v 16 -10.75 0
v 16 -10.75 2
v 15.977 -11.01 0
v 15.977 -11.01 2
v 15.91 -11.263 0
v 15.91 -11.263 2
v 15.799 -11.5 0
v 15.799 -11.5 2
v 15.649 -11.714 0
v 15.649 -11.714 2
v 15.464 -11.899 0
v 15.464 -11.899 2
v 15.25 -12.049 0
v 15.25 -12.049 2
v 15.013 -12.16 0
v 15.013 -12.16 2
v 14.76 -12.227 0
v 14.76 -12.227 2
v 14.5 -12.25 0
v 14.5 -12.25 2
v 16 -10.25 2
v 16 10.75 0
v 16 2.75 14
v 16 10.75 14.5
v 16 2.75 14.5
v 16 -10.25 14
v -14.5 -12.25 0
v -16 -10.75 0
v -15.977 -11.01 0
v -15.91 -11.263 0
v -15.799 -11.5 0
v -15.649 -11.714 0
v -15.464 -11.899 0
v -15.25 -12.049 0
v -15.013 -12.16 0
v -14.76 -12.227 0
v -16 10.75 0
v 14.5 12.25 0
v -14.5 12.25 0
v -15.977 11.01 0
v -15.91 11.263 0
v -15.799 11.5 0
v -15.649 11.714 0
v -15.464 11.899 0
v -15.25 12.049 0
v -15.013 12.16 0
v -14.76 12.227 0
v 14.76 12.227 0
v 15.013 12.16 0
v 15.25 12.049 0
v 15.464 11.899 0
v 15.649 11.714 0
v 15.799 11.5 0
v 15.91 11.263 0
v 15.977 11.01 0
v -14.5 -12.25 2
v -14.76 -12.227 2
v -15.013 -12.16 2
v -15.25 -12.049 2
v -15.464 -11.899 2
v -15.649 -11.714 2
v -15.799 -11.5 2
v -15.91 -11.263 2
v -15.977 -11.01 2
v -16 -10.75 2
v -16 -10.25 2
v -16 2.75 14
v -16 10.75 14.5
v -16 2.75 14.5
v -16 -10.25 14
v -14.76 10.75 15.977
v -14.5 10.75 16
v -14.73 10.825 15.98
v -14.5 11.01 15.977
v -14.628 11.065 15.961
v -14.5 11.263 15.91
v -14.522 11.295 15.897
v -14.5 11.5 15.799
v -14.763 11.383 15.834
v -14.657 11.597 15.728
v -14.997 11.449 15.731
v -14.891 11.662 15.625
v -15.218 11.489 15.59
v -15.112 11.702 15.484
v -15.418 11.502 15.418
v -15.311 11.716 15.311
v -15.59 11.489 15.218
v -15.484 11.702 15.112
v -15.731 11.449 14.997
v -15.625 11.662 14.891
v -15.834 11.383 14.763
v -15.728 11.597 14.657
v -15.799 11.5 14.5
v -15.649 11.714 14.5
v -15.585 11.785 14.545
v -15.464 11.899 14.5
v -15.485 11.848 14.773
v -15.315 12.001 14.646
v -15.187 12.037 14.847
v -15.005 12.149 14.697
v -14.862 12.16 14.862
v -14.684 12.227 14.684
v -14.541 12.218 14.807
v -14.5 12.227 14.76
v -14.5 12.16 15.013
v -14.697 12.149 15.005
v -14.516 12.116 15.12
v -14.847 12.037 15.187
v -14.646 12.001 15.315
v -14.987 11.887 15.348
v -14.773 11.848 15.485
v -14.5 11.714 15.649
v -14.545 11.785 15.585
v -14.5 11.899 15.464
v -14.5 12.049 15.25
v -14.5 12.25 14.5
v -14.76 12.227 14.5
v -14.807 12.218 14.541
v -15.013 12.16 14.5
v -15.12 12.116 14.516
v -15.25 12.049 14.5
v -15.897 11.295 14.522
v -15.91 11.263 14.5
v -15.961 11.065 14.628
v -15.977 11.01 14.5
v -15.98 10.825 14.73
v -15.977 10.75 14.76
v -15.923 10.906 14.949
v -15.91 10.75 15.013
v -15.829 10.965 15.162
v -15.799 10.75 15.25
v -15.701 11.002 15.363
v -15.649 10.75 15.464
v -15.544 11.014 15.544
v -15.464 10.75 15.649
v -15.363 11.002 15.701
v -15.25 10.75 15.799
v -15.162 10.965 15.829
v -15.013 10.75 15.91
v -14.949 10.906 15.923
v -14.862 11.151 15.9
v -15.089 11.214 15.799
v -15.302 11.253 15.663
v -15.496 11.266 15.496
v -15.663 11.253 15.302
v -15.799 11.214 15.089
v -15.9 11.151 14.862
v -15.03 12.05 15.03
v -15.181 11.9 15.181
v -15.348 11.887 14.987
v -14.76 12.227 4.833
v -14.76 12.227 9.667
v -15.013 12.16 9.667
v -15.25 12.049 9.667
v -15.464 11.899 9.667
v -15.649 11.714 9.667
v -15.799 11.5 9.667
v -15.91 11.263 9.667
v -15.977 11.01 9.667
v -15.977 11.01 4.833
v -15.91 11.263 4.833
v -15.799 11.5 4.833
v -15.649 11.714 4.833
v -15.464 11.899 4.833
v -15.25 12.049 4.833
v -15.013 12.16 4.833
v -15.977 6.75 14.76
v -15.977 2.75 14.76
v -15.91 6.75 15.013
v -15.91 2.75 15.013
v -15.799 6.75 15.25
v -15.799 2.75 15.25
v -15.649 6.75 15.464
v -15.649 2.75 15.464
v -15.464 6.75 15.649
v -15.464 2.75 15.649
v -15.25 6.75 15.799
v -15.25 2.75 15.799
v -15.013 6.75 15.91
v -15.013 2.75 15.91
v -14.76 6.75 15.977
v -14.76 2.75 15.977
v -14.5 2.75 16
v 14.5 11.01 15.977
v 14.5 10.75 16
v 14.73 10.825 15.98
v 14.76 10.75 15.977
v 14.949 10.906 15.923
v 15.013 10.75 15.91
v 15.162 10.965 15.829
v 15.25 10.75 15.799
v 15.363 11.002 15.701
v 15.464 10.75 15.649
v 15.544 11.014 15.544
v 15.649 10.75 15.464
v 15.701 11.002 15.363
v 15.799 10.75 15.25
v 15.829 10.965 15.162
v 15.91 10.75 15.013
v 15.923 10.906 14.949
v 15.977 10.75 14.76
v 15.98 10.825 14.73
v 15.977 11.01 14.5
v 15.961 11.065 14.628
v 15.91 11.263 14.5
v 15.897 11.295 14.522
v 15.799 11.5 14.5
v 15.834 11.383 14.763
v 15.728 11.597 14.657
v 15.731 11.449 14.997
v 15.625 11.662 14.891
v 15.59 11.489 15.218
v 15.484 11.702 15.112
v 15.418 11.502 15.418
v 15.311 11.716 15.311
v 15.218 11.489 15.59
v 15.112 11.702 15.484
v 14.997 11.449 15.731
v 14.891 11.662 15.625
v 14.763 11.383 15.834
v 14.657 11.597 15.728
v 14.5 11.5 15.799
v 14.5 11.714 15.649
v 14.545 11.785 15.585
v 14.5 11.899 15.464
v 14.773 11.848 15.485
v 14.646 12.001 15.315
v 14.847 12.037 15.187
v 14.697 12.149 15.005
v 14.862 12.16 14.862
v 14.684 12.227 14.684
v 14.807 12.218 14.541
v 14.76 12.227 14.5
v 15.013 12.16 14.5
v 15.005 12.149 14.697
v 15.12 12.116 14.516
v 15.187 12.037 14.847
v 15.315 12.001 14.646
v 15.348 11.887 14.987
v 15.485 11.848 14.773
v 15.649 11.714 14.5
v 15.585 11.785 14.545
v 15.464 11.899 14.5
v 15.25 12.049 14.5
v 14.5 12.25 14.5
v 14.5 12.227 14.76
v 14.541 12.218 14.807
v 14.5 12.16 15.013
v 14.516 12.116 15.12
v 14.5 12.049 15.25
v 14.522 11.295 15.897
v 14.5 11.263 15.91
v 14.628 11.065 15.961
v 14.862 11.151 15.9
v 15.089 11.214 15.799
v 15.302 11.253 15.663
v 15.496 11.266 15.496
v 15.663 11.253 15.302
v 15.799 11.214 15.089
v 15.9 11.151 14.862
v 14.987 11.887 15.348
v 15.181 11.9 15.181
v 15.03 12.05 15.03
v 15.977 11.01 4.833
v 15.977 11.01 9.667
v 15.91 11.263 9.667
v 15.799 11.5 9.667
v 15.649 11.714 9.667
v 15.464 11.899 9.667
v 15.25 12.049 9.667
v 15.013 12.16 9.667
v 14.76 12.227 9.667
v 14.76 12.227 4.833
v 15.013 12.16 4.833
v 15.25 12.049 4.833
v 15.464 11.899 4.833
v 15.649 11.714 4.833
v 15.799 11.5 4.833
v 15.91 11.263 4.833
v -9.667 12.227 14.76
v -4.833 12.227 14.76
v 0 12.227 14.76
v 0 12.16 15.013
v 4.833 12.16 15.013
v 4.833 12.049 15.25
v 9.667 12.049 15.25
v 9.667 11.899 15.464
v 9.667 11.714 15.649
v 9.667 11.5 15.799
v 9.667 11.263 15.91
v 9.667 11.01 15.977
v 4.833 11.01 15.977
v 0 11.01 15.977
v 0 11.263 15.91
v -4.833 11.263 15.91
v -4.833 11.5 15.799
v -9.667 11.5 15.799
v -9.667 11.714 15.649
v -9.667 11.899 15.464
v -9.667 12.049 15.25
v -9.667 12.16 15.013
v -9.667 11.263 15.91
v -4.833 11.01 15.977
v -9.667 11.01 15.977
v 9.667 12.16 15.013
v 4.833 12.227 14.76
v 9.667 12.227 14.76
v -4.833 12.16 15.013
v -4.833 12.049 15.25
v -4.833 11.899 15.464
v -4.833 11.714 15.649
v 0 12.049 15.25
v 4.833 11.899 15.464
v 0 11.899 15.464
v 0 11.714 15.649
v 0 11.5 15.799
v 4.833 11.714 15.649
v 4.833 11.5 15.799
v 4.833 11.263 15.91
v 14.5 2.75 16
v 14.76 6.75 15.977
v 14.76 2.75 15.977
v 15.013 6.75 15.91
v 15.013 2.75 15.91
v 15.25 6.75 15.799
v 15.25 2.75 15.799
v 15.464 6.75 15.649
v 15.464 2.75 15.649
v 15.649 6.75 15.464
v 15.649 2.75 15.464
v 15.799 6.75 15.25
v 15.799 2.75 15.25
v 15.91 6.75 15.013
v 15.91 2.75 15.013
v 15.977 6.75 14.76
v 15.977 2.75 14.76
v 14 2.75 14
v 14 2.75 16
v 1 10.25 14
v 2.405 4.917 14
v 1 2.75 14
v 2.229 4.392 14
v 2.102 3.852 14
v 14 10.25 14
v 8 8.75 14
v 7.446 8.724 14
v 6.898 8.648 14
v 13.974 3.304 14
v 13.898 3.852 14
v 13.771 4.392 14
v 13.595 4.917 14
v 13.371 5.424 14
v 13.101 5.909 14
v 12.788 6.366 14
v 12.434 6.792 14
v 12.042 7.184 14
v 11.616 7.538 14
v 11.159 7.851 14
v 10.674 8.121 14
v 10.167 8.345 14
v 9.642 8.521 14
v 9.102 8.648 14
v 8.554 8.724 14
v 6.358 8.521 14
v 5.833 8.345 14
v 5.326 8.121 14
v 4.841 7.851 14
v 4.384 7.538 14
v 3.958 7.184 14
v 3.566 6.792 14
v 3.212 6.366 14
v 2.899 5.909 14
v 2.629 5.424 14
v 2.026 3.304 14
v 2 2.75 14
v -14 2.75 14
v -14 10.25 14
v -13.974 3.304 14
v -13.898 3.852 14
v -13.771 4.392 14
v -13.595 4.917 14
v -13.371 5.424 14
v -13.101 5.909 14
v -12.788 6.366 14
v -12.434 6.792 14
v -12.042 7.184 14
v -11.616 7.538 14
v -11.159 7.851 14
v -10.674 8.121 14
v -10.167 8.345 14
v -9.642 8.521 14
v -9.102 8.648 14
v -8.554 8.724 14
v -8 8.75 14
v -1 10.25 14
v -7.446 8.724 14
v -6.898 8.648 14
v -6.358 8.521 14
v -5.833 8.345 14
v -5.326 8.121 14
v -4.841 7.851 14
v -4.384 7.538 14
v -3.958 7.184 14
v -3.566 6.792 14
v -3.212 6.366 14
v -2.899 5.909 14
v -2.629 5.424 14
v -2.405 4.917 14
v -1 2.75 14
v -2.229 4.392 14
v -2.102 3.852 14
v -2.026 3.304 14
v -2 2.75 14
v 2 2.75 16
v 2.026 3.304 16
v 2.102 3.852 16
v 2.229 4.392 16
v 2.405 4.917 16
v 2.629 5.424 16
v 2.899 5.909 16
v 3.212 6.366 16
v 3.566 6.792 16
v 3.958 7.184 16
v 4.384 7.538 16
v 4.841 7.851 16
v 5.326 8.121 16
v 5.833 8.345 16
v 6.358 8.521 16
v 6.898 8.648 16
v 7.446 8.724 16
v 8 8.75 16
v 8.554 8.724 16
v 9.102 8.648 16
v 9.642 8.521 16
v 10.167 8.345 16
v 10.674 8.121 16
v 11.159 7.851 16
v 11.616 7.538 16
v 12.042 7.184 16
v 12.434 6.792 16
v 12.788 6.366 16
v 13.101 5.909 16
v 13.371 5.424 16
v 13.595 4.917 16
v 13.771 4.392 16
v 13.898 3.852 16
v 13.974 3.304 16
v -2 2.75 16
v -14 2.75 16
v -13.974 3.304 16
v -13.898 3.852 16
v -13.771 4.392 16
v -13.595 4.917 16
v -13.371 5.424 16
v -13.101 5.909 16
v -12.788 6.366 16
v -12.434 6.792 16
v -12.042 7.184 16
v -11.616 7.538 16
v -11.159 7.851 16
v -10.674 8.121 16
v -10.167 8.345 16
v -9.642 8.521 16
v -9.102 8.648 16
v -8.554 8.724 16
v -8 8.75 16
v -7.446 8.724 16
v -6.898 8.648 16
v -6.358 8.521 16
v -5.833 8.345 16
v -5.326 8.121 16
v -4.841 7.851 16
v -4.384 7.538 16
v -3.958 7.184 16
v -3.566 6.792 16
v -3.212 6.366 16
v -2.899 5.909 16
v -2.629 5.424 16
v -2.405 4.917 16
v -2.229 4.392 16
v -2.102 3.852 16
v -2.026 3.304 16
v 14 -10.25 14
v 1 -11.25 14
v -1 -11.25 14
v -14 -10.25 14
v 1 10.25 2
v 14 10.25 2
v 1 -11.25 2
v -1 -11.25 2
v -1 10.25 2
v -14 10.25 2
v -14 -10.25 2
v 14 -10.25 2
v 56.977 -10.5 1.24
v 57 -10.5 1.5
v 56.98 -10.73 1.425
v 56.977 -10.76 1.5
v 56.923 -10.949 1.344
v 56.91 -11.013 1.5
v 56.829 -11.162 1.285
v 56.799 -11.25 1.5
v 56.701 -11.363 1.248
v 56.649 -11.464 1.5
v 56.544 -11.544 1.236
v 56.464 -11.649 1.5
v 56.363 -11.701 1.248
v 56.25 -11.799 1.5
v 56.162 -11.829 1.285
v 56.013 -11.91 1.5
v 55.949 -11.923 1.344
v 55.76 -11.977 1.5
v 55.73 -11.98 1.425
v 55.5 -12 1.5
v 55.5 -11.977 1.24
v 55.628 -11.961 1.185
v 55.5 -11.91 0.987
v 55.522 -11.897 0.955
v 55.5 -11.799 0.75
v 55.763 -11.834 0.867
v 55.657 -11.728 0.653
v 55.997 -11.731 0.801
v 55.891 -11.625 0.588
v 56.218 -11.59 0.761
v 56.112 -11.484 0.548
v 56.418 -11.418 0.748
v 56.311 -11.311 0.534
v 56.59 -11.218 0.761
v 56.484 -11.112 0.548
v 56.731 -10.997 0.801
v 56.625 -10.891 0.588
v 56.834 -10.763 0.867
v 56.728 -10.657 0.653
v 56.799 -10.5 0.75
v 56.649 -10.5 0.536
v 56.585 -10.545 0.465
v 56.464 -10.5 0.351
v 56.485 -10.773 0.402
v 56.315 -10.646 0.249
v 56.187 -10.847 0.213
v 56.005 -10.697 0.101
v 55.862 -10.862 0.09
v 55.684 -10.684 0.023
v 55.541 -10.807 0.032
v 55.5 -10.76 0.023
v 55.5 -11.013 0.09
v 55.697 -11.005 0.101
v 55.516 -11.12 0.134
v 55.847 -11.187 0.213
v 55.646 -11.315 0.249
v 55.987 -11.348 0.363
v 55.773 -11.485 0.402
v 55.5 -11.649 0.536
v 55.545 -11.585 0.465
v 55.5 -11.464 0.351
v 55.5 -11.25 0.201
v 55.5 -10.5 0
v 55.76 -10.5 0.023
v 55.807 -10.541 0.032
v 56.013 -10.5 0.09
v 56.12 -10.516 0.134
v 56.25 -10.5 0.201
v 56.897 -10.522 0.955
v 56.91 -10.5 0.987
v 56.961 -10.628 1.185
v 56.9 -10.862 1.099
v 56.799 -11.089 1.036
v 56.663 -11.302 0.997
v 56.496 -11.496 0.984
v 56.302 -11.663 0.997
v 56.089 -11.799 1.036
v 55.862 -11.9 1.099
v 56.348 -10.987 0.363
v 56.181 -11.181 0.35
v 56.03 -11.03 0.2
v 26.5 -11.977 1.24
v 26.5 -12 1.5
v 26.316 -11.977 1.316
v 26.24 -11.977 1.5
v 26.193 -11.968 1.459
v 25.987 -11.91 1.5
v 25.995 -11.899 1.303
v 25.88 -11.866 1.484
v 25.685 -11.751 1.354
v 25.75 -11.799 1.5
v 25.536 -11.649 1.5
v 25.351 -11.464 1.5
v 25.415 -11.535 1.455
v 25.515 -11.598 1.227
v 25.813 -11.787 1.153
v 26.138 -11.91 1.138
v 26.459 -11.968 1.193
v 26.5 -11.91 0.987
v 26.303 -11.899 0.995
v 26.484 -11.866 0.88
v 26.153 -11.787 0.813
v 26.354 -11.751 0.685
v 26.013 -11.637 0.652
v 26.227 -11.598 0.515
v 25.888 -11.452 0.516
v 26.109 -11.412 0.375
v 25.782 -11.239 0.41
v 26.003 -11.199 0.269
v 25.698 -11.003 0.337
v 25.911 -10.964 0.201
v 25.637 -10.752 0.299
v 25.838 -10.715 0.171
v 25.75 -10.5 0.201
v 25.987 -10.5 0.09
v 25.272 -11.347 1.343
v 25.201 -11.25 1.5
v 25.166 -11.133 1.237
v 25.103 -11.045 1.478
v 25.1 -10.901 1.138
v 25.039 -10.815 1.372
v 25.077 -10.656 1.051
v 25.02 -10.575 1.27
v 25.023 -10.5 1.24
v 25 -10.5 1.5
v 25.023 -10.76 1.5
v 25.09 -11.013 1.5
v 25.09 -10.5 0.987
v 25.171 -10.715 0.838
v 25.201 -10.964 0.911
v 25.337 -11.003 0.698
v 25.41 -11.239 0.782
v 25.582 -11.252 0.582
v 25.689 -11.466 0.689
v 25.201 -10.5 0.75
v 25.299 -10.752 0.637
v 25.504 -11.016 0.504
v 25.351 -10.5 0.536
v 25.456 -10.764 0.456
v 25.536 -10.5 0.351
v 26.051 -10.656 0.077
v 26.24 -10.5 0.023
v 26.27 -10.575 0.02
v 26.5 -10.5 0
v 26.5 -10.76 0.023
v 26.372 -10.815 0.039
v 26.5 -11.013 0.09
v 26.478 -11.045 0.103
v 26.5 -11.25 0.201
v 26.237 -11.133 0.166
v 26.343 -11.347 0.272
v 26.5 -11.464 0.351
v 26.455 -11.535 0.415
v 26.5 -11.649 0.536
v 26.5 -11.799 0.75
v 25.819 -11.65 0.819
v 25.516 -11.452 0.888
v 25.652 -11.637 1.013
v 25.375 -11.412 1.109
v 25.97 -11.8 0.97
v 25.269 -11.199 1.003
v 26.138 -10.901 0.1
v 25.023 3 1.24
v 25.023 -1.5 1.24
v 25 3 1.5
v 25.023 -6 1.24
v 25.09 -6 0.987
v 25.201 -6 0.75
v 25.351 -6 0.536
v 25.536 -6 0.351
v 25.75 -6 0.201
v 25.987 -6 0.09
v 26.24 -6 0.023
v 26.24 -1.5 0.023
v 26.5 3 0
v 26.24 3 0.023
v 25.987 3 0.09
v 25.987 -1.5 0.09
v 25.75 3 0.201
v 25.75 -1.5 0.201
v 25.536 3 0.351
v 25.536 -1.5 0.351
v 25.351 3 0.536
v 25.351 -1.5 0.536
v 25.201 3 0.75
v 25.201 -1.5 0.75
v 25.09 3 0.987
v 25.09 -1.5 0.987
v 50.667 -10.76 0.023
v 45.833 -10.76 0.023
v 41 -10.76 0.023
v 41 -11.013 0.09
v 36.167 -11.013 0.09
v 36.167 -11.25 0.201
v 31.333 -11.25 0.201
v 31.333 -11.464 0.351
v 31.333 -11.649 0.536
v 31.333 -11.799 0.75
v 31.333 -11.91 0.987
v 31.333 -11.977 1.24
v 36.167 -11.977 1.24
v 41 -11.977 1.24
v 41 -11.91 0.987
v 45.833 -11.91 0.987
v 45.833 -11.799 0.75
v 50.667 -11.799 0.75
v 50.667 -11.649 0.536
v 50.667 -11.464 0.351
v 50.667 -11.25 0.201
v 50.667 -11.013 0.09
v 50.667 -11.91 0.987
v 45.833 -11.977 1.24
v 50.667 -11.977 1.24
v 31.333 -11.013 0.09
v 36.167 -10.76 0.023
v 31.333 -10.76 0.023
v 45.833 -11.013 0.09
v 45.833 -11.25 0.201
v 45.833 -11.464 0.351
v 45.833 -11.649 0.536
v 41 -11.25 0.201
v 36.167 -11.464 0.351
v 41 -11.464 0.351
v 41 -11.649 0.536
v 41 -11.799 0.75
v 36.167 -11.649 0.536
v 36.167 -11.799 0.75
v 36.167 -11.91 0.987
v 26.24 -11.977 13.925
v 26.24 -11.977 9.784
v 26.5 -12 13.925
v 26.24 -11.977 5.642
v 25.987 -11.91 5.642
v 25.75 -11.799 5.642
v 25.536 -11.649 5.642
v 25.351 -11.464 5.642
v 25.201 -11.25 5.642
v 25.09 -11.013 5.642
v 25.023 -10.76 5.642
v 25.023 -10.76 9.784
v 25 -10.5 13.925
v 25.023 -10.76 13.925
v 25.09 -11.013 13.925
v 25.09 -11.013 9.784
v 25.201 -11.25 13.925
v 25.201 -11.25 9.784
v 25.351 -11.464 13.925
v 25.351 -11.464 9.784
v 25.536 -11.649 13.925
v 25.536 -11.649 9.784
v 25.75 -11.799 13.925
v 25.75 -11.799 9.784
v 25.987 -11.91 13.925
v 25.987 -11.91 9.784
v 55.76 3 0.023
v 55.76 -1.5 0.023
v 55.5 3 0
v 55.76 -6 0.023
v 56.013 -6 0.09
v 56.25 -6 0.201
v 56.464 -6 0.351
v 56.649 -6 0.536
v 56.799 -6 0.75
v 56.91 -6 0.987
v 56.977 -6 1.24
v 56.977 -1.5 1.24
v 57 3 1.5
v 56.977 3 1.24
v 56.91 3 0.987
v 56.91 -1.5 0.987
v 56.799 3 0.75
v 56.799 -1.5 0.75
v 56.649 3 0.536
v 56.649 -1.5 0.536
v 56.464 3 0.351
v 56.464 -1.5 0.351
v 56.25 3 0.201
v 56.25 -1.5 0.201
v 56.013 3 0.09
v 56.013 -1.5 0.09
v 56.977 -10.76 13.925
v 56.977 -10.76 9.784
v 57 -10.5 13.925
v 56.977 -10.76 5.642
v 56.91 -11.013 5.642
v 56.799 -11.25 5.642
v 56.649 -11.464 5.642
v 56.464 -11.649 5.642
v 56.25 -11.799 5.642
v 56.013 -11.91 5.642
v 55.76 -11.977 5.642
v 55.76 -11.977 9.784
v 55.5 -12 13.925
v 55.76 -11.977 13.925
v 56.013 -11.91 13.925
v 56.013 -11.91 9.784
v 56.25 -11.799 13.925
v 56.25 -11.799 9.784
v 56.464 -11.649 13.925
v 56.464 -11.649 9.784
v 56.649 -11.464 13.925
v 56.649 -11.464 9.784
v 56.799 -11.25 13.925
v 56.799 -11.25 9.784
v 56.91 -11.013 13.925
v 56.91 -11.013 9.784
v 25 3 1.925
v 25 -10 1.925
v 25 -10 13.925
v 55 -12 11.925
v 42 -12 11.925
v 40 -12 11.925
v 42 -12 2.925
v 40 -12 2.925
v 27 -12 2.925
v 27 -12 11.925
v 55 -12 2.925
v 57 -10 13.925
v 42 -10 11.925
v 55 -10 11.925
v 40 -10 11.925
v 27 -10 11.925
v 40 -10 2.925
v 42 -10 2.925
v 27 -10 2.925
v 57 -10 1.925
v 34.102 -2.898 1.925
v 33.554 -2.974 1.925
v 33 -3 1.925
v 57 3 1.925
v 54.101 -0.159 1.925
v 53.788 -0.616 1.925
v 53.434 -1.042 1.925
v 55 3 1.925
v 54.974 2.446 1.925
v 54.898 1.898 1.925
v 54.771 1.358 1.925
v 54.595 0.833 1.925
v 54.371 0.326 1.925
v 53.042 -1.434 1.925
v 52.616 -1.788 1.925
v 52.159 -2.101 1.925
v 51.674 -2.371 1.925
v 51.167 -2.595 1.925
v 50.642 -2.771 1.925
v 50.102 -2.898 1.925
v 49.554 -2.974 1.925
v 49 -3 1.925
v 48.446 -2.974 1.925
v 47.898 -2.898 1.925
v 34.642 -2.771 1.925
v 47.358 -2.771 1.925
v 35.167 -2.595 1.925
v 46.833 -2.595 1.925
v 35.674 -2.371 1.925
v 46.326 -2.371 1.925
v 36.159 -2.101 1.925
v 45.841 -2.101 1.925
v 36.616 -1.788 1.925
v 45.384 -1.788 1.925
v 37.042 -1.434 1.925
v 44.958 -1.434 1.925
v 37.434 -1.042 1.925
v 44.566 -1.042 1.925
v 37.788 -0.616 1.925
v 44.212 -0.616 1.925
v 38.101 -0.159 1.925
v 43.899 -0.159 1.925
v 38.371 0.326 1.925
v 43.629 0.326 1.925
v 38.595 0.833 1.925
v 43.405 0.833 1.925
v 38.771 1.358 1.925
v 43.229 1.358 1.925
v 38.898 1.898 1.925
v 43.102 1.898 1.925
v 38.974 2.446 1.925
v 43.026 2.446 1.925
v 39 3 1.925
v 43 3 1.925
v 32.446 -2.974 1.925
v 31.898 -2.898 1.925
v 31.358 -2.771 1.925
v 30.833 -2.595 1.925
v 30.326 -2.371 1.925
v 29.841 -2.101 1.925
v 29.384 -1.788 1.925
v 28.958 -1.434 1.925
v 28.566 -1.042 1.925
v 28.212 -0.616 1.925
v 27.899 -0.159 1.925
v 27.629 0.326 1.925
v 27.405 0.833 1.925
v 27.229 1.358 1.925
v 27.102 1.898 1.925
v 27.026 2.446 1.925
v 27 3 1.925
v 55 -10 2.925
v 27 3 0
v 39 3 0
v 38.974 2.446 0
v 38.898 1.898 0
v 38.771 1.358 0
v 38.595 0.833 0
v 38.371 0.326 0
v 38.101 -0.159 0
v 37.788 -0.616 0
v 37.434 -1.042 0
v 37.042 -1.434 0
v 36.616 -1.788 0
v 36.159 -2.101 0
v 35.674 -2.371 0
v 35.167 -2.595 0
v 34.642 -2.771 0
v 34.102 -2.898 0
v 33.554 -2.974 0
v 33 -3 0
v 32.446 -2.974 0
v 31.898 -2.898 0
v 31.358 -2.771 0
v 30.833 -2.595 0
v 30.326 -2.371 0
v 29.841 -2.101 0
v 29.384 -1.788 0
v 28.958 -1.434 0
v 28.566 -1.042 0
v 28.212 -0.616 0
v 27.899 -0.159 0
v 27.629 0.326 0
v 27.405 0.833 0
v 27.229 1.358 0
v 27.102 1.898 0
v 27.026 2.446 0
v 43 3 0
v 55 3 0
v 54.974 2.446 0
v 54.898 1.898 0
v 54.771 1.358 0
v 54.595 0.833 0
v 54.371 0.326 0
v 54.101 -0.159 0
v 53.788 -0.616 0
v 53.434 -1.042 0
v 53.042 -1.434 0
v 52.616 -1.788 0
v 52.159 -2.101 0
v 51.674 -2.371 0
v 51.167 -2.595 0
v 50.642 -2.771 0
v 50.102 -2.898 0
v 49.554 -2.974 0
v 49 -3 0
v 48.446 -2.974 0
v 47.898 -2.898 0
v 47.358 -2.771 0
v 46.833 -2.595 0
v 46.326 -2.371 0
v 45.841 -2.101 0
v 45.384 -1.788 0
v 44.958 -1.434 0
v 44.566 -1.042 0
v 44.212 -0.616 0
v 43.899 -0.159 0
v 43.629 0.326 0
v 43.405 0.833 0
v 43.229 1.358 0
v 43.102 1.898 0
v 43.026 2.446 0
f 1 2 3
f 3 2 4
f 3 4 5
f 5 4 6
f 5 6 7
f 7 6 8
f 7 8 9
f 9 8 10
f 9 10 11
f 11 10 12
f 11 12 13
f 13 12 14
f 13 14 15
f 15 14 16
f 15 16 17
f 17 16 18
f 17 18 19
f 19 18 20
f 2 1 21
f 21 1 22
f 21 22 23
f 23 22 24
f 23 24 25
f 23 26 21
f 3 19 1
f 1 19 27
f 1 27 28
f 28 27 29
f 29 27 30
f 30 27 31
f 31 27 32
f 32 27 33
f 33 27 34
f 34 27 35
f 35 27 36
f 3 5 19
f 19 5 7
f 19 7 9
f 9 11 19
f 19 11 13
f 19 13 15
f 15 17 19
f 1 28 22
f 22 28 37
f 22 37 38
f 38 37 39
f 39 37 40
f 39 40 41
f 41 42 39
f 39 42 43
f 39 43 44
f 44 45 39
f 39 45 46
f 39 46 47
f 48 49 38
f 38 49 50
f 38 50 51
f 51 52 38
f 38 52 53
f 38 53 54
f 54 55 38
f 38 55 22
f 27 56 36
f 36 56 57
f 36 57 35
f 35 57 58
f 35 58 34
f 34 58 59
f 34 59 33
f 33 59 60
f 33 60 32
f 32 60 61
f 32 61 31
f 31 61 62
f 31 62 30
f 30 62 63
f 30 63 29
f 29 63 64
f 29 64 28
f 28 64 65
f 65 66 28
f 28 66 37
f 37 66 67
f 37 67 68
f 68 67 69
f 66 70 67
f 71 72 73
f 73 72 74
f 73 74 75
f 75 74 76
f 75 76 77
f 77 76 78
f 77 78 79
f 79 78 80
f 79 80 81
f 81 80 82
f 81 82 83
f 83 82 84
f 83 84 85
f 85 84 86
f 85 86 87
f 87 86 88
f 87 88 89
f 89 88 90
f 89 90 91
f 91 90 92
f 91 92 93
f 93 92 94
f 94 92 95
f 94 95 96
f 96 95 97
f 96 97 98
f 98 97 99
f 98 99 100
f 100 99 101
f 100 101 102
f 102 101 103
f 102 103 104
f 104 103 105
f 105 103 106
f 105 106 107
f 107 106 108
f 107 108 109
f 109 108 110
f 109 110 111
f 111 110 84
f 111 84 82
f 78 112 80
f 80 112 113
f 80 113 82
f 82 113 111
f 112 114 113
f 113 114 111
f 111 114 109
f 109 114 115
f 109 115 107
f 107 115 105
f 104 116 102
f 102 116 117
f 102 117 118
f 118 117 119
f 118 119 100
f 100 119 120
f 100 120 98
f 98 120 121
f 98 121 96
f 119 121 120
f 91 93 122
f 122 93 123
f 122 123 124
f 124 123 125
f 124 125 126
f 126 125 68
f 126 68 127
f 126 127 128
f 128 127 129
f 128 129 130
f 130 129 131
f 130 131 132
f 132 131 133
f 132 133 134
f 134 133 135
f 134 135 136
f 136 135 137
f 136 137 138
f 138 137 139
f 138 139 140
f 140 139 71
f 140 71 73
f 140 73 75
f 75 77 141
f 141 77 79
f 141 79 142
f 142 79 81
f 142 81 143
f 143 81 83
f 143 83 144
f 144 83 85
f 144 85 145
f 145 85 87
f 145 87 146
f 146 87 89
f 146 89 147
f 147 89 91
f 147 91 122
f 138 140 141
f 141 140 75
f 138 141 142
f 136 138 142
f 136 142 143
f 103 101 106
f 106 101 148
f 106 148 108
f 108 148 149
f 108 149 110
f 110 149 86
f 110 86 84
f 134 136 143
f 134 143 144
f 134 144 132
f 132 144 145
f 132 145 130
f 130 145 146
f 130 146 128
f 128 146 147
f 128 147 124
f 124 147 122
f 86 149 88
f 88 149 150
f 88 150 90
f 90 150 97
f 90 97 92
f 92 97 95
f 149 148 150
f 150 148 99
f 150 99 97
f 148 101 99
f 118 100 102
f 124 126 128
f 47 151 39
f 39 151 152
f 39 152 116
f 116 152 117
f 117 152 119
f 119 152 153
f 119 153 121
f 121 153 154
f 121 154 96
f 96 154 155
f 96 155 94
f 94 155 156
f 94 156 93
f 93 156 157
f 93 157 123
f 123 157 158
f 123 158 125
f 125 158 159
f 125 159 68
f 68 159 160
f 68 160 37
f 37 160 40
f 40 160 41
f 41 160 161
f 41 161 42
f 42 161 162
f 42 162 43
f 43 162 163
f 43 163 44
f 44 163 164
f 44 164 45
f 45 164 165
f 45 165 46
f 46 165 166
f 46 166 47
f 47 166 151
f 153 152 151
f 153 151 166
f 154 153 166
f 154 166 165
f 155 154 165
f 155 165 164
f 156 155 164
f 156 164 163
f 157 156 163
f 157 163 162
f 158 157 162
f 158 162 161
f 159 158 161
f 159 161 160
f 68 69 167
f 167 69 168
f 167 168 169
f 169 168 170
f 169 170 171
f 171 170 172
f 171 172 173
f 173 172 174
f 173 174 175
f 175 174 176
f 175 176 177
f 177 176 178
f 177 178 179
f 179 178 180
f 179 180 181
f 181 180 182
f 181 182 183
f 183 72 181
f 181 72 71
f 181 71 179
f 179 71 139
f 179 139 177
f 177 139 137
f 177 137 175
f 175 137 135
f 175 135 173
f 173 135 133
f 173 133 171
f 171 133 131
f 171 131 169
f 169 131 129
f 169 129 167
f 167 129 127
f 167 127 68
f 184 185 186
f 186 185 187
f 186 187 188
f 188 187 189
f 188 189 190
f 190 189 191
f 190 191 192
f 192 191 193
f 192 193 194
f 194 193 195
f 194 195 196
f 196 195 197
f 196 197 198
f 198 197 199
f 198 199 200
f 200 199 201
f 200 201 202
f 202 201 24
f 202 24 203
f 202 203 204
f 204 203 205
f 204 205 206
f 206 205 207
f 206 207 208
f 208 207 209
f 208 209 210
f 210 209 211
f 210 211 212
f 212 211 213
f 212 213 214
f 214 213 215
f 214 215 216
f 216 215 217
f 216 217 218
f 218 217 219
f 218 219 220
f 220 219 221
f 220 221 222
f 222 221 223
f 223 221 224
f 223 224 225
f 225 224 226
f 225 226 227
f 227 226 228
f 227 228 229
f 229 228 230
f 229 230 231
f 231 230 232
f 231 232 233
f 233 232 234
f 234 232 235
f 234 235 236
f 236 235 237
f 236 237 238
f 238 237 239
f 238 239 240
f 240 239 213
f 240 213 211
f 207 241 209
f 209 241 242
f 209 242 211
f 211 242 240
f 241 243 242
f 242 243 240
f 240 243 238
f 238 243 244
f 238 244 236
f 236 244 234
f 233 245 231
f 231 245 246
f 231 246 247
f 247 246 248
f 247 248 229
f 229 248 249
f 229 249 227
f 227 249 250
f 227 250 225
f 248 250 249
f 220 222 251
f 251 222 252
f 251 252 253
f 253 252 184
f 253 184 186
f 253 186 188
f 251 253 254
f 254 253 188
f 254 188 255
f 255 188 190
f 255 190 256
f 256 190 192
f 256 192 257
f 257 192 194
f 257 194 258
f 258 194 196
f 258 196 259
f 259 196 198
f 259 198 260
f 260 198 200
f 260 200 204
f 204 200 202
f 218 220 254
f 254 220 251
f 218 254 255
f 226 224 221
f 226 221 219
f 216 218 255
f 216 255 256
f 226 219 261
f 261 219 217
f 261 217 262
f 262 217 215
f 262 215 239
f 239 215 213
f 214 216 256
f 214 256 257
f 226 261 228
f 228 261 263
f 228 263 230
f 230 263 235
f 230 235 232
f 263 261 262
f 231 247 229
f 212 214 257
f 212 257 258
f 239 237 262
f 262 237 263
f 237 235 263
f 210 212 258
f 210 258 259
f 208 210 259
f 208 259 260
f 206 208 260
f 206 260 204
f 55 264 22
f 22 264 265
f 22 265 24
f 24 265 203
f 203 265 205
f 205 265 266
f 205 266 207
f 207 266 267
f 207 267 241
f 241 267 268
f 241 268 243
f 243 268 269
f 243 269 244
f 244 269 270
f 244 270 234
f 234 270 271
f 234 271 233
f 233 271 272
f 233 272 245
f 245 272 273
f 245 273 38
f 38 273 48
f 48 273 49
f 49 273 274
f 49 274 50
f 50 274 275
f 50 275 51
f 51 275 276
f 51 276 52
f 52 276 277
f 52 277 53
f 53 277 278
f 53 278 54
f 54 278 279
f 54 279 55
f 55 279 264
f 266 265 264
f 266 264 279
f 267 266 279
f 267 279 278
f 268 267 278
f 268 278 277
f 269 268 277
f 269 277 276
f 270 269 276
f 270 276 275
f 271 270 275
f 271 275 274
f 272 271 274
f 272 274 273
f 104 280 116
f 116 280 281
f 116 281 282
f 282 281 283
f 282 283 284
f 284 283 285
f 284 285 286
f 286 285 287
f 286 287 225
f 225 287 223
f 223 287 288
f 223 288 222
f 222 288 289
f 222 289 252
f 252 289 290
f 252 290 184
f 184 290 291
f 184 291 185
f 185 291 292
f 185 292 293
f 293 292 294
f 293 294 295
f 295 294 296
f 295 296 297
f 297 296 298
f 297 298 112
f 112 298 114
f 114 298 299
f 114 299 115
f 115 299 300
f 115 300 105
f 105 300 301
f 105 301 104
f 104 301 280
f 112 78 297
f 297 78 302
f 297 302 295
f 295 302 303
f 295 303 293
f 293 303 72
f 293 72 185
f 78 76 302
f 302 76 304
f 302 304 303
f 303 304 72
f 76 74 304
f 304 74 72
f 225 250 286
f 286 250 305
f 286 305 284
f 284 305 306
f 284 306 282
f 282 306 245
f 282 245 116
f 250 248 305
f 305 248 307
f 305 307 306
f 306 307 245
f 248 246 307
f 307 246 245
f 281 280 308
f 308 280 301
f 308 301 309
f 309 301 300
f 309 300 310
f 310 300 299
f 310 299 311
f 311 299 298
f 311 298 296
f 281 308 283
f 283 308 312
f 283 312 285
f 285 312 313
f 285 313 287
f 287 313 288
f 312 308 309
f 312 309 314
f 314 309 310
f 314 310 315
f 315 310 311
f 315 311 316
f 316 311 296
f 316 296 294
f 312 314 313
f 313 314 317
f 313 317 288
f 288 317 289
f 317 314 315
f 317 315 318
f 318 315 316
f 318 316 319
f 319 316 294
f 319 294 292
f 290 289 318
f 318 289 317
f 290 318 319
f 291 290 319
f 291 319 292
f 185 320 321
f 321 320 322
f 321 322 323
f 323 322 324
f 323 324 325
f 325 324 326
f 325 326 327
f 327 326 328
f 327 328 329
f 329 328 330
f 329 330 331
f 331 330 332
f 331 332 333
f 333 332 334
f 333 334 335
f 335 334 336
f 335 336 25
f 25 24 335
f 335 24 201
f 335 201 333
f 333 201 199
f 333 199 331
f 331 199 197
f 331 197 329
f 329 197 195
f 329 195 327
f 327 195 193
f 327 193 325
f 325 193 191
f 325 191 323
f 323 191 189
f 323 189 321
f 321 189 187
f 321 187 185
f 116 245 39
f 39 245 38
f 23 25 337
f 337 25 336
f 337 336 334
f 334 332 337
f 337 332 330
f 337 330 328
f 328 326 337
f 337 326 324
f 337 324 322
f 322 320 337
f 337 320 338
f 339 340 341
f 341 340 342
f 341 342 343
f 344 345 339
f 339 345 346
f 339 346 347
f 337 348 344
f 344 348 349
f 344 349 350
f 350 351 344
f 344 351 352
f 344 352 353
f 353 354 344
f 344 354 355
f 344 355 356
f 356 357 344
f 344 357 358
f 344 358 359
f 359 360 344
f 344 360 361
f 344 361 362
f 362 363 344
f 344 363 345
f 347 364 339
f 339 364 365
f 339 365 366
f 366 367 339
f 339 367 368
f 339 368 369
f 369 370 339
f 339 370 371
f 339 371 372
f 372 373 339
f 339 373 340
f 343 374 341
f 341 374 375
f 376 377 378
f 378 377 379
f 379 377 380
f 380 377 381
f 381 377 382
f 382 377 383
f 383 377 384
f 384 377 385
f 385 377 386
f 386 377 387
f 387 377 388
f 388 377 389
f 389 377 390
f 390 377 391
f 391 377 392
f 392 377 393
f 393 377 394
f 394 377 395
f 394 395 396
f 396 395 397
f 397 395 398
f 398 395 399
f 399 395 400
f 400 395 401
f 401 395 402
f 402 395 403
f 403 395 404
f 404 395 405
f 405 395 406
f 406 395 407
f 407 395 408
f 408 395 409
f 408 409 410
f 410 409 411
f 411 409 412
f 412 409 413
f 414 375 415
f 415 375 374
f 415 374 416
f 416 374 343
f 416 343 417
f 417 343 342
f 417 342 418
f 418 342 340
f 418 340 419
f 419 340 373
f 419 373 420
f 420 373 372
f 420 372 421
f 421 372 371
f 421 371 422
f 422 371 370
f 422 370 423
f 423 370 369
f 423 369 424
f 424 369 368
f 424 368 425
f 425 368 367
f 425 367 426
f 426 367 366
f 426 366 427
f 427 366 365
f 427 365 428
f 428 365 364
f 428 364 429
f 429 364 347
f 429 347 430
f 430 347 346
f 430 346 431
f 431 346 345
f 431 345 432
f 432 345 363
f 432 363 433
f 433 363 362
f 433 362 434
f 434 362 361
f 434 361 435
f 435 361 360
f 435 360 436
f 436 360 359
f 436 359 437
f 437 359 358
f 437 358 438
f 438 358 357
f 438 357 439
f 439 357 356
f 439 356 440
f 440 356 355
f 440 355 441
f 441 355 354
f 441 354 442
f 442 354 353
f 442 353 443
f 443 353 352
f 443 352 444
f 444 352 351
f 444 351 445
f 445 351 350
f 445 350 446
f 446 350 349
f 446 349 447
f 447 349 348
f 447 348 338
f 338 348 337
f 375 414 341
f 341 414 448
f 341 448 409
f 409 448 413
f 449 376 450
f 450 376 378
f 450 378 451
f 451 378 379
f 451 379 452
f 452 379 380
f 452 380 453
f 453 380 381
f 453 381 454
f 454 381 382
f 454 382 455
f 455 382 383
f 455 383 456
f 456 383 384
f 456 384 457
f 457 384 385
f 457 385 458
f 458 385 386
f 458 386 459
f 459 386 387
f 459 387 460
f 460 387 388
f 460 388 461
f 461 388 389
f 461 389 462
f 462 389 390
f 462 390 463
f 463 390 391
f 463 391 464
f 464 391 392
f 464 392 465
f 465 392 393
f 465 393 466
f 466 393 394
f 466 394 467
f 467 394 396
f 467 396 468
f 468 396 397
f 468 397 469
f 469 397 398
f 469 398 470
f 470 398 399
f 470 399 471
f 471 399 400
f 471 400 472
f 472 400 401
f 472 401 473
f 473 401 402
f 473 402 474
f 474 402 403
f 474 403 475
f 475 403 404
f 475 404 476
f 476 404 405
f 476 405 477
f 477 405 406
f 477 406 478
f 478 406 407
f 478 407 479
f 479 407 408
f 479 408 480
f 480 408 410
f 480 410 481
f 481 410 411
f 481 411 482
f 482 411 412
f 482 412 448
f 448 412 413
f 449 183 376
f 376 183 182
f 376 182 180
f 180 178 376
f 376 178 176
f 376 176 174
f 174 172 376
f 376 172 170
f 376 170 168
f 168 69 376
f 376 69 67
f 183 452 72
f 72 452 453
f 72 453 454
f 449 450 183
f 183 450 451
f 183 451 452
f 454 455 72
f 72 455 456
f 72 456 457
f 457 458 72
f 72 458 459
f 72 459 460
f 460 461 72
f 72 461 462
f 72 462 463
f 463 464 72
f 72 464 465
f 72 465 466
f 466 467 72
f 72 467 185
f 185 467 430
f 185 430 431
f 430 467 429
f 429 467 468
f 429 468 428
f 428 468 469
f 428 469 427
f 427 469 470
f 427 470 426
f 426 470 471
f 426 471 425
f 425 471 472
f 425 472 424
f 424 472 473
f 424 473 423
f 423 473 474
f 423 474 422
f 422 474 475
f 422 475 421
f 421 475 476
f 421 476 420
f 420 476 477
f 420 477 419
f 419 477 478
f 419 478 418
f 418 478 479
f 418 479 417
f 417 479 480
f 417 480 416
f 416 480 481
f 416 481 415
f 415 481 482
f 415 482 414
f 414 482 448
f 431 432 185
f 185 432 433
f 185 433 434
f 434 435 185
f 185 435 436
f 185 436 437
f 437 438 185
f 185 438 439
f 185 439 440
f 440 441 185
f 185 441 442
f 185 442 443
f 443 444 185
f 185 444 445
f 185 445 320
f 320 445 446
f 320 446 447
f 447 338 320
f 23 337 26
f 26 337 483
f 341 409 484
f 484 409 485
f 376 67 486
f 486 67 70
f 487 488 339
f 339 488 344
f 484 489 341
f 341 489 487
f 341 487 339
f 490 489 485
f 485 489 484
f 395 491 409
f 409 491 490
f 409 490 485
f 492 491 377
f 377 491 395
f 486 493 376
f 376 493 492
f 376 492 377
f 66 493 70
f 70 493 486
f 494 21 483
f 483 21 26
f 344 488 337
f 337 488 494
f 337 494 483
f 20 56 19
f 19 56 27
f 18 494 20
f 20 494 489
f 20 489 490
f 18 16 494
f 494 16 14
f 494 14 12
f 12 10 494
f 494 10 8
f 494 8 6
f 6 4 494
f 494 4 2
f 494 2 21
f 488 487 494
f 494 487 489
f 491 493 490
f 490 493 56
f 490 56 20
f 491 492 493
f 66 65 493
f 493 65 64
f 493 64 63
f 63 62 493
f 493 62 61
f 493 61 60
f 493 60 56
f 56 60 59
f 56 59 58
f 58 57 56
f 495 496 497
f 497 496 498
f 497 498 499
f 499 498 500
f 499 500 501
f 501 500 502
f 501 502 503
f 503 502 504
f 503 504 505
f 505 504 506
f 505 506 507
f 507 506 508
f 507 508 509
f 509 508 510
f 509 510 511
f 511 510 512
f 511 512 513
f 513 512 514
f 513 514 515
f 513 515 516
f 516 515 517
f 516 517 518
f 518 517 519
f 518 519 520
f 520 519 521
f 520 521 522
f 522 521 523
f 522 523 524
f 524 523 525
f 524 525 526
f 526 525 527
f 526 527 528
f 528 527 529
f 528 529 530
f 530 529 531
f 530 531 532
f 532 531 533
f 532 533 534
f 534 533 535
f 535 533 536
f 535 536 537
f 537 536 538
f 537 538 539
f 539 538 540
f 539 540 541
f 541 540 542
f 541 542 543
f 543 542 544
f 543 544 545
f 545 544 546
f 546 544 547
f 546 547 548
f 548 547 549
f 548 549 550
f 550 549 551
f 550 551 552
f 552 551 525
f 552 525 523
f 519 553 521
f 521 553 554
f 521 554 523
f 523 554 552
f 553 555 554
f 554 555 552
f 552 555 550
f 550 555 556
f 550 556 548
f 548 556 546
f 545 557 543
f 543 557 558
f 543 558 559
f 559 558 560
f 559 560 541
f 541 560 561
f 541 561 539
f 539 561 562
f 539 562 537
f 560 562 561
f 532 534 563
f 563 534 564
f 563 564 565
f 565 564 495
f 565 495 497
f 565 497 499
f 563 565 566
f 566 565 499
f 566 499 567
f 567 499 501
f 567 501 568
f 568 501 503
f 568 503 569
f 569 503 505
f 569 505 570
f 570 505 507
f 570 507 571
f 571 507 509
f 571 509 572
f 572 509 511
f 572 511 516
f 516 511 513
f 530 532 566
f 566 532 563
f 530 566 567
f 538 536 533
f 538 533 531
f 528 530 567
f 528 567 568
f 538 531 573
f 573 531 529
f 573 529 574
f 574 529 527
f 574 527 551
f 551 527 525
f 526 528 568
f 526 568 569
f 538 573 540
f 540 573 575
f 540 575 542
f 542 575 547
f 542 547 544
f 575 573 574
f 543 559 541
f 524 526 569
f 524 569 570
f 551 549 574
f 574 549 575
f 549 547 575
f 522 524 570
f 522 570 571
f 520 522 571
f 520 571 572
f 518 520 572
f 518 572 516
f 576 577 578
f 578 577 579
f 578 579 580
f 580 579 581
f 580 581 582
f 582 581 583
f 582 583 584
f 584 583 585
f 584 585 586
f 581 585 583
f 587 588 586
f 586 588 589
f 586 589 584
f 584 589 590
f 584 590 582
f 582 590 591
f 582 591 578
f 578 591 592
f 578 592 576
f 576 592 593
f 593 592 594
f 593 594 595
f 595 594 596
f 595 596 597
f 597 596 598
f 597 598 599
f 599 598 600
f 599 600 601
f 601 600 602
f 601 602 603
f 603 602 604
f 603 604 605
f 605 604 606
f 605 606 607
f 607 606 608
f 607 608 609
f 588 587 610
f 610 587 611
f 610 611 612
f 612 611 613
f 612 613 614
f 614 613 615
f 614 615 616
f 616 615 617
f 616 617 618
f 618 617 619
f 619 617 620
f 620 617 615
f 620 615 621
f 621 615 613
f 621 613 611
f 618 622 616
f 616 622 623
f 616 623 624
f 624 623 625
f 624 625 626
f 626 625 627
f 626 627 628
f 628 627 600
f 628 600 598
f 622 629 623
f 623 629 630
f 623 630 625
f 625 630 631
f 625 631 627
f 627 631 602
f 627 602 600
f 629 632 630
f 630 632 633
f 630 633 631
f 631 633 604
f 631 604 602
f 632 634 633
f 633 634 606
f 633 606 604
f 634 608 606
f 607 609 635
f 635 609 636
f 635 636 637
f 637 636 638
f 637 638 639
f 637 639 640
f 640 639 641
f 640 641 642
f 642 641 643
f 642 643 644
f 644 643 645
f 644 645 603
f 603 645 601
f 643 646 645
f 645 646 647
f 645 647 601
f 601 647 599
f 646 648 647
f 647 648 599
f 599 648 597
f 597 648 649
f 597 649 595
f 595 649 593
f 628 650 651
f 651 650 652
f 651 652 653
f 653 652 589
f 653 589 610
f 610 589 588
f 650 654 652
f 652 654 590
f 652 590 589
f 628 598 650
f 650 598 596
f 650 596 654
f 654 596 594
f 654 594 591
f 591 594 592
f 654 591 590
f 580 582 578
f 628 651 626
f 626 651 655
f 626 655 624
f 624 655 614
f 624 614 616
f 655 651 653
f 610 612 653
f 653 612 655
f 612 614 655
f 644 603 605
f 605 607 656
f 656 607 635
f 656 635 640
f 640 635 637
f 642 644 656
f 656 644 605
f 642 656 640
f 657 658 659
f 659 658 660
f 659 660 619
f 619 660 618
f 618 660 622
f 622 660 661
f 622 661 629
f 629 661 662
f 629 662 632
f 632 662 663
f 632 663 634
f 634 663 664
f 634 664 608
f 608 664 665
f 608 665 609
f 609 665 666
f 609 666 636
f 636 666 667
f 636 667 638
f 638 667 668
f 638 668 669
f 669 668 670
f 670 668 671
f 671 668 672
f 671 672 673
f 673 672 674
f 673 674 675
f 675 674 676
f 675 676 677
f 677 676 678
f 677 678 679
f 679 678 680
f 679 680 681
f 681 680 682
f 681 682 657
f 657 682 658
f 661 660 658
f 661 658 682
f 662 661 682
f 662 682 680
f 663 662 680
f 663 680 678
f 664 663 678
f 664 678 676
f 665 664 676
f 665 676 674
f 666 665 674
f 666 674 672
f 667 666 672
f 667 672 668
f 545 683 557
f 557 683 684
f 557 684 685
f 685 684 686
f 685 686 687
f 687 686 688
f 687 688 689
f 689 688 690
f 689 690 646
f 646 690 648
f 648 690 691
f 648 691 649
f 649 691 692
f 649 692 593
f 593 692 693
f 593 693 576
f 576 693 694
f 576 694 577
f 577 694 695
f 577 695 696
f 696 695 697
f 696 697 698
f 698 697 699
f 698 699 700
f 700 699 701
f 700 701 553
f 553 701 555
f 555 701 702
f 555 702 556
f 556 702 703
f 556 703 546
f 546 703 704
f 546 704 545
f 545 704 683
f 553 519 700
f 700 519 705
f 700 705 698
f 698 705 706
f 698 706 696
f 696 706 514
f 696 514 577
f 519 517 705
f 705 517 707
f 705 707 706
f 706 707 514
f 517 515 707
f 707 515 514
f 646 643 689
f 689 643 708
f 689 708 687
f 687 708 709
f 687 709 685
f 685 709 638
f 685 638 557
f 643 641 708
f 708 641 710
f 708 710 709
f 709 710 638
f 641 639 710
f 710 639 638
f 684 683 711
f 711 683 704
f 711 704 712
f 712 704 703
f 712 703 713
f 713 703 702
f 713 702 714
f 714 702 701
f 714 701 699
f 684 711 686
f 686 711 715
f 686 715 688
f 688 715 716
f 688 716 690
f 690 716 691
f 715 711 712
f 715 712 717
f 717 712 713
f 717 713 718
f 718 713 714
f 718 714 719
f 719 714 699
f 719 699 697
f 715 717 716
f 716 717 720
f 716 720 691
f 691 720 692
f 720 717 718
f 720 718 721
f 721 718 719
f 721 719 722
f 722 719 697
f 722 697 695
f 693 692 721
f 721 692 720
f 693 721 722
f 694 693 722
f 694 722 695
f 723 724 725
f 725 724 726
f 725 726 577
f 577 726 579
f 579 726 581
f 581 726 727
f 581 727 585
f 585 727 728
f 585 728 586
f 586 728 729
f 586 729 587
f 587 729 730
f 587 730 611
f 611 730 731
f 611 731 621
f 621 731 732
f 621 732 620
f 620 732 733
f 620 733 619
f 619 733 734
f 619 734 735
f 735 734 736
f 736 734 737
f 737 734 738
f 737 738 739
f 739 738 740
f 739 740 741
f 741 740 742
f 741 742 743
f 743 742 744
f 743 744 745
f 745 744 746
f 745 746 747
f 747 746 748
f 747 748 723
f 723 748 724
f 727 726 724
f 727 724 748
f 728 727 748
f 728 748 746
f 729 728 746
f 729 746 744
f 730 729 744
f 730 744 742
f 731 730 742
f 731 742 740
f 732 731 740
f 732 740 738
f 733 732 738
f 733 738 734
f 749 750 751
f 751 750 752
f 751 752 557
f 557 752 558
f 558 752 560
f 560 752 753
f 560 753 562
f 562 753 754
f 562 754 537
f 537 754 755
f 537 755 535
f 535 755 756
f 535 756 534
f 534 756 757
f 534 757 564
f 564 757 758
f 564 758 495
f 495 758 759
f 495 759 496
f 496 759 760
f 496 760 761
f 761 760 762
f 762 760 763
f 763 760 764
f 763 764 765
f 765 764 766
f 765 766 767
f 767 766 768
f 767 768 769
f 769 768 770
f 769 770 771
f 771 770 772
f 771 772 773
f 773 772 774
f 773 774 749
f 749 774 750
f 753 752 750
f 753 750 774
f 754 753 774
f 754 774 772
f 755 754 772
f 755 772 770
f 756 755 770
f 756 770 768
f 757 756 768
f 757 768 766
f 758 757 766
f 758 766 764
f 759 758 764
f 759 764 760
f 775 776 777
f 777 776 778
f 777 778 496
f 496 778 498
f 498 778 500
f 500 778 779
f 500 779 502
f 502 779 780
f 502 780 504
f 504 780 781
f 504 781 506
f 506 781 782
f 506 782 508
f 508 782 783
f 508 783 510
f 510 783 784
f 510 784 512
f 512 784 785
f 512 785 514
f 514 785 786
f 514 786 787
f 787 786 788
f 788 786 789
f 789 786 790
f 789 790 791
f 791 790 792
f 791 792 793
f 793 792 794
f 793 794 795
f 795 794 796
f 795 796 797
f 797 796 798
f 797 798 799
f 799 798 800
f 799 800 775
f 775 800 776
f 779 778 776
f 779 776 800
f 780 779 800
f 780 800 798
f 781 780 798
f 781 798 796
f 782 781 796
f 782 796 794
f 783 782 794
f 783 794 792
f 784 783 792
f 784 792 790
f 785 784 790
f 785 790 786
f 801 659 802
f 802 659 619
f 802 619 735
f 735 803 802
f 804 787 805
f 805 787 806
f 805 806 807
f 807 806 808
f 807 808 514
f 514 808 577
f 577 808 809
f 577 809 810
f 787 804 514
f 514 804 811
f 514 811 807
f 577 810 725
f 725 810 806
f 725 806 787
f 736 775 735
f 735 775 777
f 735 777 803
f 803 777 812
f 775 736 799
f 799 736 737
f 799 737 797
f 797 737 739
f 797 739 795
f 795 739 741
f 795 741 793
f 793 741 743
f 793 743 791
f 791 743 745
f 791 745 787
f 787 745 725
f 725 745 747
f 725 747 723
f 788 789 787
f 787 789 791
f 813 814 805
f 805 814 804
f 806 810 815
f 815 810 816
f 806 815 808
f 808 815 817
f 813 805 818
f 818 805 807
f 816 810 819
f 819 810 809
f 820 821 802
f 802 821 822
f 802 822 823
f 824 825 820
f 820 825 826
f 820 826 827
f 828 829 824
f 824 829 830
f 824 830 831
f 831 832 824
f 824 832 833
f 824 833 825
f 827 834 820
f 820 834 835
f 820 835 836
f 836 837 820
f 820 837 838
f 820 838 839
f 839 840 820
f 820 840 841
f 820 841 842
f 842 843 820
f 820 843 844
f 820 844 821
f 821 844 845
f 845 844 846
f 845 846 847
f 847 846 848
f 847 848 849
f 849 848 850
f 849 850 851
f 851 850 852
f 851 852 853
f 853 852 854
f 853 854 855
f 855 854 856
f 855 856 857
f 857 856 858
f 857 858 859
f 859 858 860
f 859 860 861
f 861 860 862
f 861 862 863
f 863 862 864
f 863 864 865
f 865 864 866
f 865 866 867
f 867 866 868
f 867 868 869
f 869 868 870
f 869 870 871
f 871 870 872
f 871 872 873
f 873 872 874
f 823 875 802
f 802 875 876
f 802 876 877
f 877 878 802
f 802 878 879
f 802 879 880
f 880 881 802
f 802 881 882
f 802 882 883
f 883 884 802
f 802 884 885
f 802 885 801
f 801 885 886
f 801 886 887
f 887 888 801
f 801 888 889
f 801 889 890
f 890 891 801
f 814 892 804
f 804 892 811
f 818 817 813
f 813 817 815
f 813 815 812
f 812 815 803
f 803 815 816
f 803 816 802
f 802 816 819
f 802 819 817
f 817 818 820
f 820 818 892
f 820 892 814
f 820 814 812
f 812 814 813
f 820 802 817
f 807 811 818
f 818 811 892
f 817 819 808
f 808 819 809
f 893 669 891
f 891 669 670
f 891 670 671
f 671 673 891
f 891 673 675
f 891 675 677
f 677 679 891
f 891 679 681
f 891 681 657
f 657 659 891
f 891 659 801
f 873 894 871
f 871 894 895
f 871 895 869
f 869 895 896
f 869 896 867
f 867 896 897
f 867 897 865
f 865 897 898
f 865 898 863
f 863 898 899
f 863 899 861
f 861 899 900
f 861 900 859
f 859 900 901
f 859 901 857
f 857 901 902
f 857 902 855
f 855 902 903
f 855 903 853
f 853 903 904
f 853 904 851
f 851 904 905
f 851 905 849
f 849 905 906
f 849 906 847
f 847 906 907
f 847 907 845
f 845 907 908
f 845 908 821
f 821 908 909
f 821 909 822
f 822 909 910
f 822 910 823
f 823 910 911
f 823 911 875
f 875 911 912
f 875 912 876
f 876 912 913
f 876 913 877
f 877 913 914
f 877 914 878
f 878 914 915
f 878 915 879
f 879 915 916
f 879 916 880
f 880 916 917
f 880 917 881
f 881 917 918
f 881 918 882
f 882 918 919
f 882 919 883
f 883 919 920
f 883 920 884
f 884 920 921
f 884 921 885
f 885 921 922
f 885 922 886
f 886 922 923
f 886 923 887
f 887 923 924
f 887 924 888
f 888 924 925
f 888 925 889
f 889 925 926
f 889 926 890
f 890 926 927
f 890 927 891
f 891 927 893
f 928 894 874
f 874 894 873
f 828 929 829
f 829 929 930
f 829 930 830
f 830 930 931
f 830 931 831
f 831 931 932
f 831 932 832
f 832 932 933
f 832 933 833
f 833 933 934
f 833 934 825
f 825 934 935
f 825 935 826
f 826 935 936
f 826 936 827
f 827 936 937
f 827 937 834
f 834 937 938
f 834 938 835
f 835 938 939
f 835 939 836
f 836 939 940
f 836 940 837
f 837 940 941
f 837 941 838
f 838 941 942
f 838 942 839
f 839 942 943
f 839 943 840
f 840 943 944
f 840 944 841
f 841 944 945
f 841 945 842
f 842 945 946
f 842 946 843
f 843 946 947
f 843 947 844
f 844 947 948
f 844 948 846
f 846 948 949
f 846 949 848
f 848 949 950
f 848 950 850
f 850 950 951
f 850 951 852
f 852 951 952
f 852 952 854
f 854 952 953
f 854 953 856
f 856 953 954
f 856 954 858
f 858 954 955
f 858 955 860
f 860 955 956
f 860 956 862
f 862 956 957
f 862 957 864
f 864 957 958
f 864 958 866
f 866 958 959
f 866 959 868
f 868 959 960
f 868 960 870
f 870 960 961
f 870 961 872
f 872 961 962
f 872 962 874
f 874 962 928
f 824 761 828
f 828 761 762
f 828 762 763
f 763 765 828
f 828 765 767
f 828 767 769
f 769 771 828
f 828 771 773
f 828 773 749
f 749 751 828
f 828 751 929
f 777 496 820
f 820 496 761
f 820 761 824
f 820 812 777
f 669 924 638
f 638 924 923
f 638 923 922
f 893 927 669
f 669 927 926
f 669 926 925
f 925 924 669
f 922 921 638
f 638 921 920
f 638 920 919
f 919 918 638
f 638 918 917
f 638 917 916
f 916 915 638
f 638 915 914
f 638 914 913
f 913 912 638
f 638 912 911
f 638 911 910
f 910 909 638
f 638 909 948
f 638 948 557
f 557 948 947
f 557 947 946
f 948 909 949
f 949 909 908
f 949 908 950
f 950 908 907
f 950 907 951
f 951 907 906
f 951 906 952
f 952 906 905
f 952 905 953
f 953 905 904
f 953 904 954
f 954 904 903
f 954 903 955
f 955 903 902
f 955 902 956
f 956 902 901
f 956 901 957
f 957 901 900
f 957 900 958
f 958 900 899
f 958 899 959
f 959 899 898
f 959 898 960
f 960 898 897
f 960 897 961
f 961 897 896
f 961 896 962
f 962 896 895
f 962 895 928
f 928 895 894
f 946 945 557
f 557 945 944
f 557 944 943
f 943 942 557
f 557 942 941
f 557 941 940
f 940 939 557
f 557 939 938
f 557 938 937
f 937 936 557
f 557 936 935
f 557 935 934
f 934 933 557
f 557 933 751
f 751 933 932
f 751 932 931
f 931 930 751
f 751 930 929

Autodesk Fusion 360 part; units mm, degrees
sketch "Sketch1" plane through (0, 0, 0) normal (0, 0, 1) x (1, 0, 0)
  line L0 (16, 12.25) -> (-16, 12.25)
  line L1 (-16, 12.25) -> (-16, -12.25)
  line L2 (-16, -12.25) -> (16, -12.25)
  line L3 (16, -12.25) -> (16, 12.25)
  line L4 (16, 12.25) -> (-16, -12.25) construction
  line L5 (-16, 12.25) -> (16, -12.25) construction
  dimension "d1" = 32
  dimension "d2" = 24.5
extrude "Extrude1" add sketch "Sketch1" along normal blind 2 makes body 1
sketch "Sketch3" plane through (0, 0, 2) normal (0, 0, 1) x (-1, 0, 0)
  line L0 (-16, 12.25) -> (-16, -12.25)
  line L1 (-16, -12.25) -> (16, -12.25)
  line L2 (16, -12.25) -> (16, 12.25)
  line L3 (16, 12.25) -> (-16, 12.25)
  line L4 (16, -12.25) -> (14, -12.25)
  line L5 (14, -12.25) -> (14, 10.25)
  line L6 (14, 10.25) -> (16, 10.25)
  line L7 (16, 10.25) -> (16, -12.25)
  line L8 (16, -12.25) -> (-16, -12.25)
  line L9 (-16, -12.25) -> (-16, -10.25)
  line L10 (-16, -10.25) -> (16, -10.25)
  line L11 (16, -10.25) -> (16, -12.25)
  line L12 (-16, -12.25) -> (-14, -12.25)
  line L13 (-14, -12.25) -> (-14, 10.25)
  line L14 (-14, 10.25) -> (-16, 10.25)
  line L15 (-16, 10.25) -> (-16, -12.25)
  line L16 (1, -11.25) -> (-1, -11.25)
  line L17 (-1, -11.25) -> (-1, 11.25)
  line L18 (-1, 11.25) -> (1, 11.25)
  line L19 (1, 11.25) -> (1, -11.25)
  line L20 (1, -11.25) -> (-1, 11.25) construction
  line L21 (-1, -11.25) -> (1, 11.25) construction
  dimension "d5" = 2
  dimension "d6" = 2
  dimension "d7" = 2
  dimension "d8" = 20.5
  dimension "d9" = 20.5
  dimension "d25" = 2
  dimension "d40" = 21.5
extrude "Extrude2" add sketch "Sketch3" along normal blind 12 contours L0 L10 L13 L14 L15 | L0 L1 L8 L9 L10 L12 L13 L15 | L2 L5 L6 L7 L10 | L1 L5 L8 L10 L13 L16 L17 L19 | L1 L2 L4 L5 L7 L8 L10 L11 | L10 L17 L18 L19 | L10 L16 L17 L19 bodies 1
sketch "Sketch4" plane through (0, 0, 14) normal (0, 0, 1) x (-1, 0, 0)
  line L0 (-14, -10.25) -> (-14, 10.25)
  line L1 (-14, 10.25) -> (-16, 10.25)
  line L2 (-16, 10.25) -> (-16, -12.25)
  line L3 (-16, -12.25) -> (16, -12.25)
  line L4 (16, -12.25) -> (16, 10.25)
  line L5 (16, 10.25) -> (14, 10.25)
  line L6 (14, 10.25) -> (14, -10.25)
  line L7 (14, -10.25) -> (1, -10.25)
  line L8 (16, -12.25) -> (-16, -12.25)
  line L9 (-16, -12.25) -> (-16, -2.75)
  line L10 (-16, -2.75) -> (16, -2.75)
  line L11 (16, -2.75) -> (16, -12.25)
  line L12 (1, -10.25) -> (1, 11.25)
  line L13 (1, 11.25) -> (-1, 11.25)
  line L14 (-1, 11.25) -> (-1, -10.25)
  line L15 (-1, -10.25) -> (-14, -10.25)
  circle A0 centre (8, -2.75) radius 6
  circle A1 centre (-8, -2.75) radius 6
  point P0 (8, -2.75)
  point P1 (-8, -2.75)
  dimension "d12" = 9.5
  dimension "d26" = 9.5
  dimension "d27" = 8
  dimension "d28" = 12
  dimension "d29" = 9.5
  dimension "d30" = 8
  dimension "d31" = 12
extrude "Extrude3" add sketch "Sketch4" along normal blind 2 contours L0 L2 L3 L4 L6 L7 L8 L9 L10 L11 L12 L14 L15 | L0 L10 L14 L15 A1 | L6 L7 L10 L12 A0 bodies 1
sketch "Sketch6" plane through (0, 0, 0) normal (0, 0, 1) x (1, 0, 0)
  line L0 (25, 3) -> (41, 3)
  line L1 (41, 3) -> (41, -12)
  line L2 (41, -12) -> (25, -12)
  line L3 (25, -12) -> (25, 3)
  circle A0 centre (33, 3) radius 6
  line L4 (57, -12) -> (57, 3)
  line L5 (41, -12) -> (57, -12)
  line L6 (57, 3) -> (41, 3)
  circle A1 centre (49, 3) radius 6
  line L7 (41, 3) -> (41, -12)
  point P0 (33, 3)
  point P1 (33, 3)
  point P2 (49, 3)
  point P3 (49, 3)
  dimension "d32" = 16
  dimension "d35" = 8
  dimension "d36" = 12
  dimension "d39" = 15
extrude "Extrude4" add sketch "Sketch6" along normal blind 2 separate body contours L0 L1 L2 L3 A0 L7 | L1 L4 L5 L6 A1 L7 makes body 2
move_face "MoveFace1" by (-4.6593, -0.2769, -0.0747) 1 faces at (42.936, -8.8617, 2) on bodies 2
sketch "Sketch7" plane through (0, 0, 1.9253) normal (0, 0, 1) x (-1, 0, 0)
  line L0 (-25, 12) -> (-57, 12)
  line L1 (-57, 12) -> (-57, -3)
  line L2 (-57, -3) -> (-55, -3)
  arc A0 (-43, -3) -> (-55, -3) centre (-49, -3) ccw
  line L3 (-43, -3) -> (-39, -3)
  arc A1 (-27, -3) -> (-39, -3) centre (-33, -3) ccw
  line L4 (-27, -3) -> (-25, -3)
  line L5 (-25, -3) -> (-25, 12)
  line L6 (-25, 10) -> (-57, 10)
  line L7 (-57, 10) -> (-57, 12)
  line L8 (-57, 12) -> (-25, 12)
  line L9 (-25, 12) -> (-25, 10)
  line L10 (-40, -3) -> (-42, -3)
  line L11 (-42, -3) -> (-42, 12)
  line L12 (-42, 12) -> (-40, 12)
  line L13 (-40, 12) -> (-40, -3)
  line L14 (-25, -3) -> (-27, -3)
  line L15 (-27, -3) -> (-27, 12)
  line L16 (-27, 12) -> (-25, 12)
  line L17 (-25, 12) -> (-25, -3)
  line L18 (-55, -3) -> (-57, -3)
  line L19 (-57, -3) -> (-57, 12)
  line L20 (-57, 12) -> (-55, 12)
  line L21 (-55, 12) -> (-55, -3)
  dimension "d59" = 2
extrude "Extrude5" add sketch "Sketch7" along normal blind 1 contours L0 L6 L8 L13 L15 | L0 L6 L8 L11 L21 bodies 2
extrude "Extrude6" add sketch "Sketch7" along normal blind 12 contours L0 L5 L6 L8 L9 L15 L16 L17 | L0 L6 L8 L11 L12 L13 | L0 L1 L6 L7 L8 L19 L20 L21 bodies 2
sketch "Sketch9" plane through (0, 0, 13.9253) normal (0, 0, 1) x (-1, 0, 0)
  line L0 (-25, 12) -> (-27, 12)
  line L1 (-27, 12) -> (-27, 10)
  line L2 (-27, 10) -> (-25, 10)
  line L3 (-25, 10) -> (-25, 12)
  line L4 (-27, 10) -> (-40, 10)
  line L5 (-40, 10) -> (-40, 12)
  line L6 (-40, 12) -> (-27, 12)
  line L7 (-27, 12) -> (-27, 10)
  line L8 (-55, 12) -> (-42, 12)
  line L9 (-42, 12) -> (-42, 10)
  line L10 (-42, 10) -> (-55, 10)
  line L11 (-55, 10) -> (-55, 12)
extrude "Extrude7" add sketch "Sketch9" against normal blind 2 contours L1 L4 L5 L6 L7 | L8 L9 L10 L11 bodies 2
fillet "Fillet7" radius 1.5 5 edges at (41, -12, 0) (57, -12, 6.9627) (57, -4.5, 0) (25, -4.5, 0) (25, -12, 6.9627) on bodies 2
fillet "Fillet1" radius 1.5 7 edges at (16, 12.25, 8) (0, 12.25, 16) (16, 7.5, 16) (-16, 7.5, 16) (-16, 12.25, 8) (-16, -12.25, 1) (16, -12.25, 1) on bodies 1
